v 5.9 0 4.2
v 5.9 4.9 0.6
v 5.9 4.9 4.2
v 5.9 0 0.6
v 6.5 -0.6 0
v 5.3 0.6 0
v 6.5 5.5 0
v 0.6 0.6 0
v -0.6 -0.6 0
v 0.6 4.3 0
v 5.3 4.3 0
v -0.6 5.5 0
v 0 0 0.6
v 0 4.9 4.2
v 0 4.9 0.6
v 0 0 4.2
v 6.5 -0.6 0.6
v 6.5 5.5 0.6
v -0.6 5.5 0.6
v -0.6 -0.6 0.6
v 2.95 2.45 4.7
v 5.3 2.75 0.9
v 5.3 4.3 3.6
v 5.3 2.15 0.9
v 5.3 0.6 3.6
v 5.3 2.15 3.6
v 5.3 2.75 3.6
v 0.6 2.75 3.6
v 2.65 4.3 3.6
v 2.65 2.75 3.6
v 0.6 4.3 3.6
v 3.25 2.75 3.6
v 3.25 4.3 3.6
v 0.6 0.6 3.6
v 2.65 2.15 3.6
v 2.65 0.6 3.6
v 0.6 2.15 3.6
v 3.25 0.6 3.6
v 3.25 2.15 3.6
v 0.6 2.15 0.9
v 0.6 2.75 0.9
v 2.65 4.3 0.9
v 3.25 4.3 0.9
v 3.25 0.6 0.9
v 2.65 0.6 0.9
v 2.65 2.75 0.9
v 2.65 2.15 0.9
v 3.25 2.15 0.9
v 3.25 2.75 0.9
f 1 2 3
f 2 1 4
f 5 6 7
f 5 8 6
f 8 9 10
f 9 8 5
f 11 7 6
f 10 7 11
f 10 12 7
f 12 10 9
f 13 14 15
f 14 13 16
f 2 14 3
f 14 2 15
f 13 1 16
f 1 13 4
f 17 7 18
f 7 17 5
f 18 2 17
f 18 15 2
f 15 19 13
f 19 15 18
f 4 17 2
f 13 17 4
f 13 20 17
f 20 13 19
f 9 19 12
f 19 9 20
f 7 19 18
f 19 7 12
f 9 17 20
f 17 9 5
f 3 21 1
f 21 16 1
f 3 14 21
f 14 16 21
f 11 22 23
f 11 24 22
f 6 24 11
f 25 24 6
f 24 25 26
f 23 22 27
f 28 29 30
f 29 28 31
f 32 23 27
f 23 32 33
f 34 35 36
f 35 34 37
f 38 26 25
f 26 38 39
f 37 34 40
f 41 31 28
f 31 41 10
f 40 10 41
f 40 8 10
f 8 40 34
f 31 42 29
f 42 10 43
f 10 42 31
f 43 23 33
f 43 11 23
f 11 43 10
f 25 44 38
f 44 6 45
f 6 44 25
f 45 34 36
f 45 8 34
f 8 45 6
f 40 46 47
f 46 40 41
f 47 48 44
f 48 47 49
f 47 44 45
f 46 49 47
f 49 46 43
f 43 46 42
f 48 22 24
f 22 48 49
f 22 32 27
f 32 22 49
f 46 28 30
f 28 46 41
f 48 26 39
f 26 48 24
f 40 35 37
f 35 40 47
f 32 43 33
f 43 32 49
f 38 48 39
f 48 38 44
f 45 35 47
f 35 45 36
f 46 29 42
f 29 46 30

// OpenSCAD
width=5.9;
height=4.9;
thickn=4.2;
base_thickn=0.6;
inside_depth=0.9;
cross_thickn=0.6;
deco_thickn=0.5;

difference() {
    union() {
        // main cube
        cube([width, height, thickn]);
        
        // base
        translate([-1, -1]*base_thickn)
        cube([width+2*base_thickn, height+2*base_thickn, base_thickn]);
        
        // decoration
        translate([0, 0, thickn])
        polyhedron(
            points=[
                [width, height, 0],
                [width, 0, 0],
                [0,0,0],
                [0, height, 0],
                [width/2, height/2, deco_thickn]
            ],
            faces=[
                [0,1,4],
                [1,2,4],
                [2,3,4],
                [3,0,4],
                [1,0,3],
                [2,1,3]
            ]
        );
    }
    
    // cavity
    translate([1, 1]*base_thickn)
    difference() {
        cube([width-2*base_thickn, height-2*base_thickn, thickn-base_thickn]);
        
        
        // cross
       #translate([0, (height-2*base_thickn-cross_thickn)/2, inside_depth])
       cube([width-2*base_thickn, cross_thickn, thickn-inside_depth]);
        
       translate([(width-2*base_thickn-cross_thickn)/2, 0, inside_depth])
       cube([cross_thickn, height-2*base_thickn, thickn-inside_depth]);
    }
}
